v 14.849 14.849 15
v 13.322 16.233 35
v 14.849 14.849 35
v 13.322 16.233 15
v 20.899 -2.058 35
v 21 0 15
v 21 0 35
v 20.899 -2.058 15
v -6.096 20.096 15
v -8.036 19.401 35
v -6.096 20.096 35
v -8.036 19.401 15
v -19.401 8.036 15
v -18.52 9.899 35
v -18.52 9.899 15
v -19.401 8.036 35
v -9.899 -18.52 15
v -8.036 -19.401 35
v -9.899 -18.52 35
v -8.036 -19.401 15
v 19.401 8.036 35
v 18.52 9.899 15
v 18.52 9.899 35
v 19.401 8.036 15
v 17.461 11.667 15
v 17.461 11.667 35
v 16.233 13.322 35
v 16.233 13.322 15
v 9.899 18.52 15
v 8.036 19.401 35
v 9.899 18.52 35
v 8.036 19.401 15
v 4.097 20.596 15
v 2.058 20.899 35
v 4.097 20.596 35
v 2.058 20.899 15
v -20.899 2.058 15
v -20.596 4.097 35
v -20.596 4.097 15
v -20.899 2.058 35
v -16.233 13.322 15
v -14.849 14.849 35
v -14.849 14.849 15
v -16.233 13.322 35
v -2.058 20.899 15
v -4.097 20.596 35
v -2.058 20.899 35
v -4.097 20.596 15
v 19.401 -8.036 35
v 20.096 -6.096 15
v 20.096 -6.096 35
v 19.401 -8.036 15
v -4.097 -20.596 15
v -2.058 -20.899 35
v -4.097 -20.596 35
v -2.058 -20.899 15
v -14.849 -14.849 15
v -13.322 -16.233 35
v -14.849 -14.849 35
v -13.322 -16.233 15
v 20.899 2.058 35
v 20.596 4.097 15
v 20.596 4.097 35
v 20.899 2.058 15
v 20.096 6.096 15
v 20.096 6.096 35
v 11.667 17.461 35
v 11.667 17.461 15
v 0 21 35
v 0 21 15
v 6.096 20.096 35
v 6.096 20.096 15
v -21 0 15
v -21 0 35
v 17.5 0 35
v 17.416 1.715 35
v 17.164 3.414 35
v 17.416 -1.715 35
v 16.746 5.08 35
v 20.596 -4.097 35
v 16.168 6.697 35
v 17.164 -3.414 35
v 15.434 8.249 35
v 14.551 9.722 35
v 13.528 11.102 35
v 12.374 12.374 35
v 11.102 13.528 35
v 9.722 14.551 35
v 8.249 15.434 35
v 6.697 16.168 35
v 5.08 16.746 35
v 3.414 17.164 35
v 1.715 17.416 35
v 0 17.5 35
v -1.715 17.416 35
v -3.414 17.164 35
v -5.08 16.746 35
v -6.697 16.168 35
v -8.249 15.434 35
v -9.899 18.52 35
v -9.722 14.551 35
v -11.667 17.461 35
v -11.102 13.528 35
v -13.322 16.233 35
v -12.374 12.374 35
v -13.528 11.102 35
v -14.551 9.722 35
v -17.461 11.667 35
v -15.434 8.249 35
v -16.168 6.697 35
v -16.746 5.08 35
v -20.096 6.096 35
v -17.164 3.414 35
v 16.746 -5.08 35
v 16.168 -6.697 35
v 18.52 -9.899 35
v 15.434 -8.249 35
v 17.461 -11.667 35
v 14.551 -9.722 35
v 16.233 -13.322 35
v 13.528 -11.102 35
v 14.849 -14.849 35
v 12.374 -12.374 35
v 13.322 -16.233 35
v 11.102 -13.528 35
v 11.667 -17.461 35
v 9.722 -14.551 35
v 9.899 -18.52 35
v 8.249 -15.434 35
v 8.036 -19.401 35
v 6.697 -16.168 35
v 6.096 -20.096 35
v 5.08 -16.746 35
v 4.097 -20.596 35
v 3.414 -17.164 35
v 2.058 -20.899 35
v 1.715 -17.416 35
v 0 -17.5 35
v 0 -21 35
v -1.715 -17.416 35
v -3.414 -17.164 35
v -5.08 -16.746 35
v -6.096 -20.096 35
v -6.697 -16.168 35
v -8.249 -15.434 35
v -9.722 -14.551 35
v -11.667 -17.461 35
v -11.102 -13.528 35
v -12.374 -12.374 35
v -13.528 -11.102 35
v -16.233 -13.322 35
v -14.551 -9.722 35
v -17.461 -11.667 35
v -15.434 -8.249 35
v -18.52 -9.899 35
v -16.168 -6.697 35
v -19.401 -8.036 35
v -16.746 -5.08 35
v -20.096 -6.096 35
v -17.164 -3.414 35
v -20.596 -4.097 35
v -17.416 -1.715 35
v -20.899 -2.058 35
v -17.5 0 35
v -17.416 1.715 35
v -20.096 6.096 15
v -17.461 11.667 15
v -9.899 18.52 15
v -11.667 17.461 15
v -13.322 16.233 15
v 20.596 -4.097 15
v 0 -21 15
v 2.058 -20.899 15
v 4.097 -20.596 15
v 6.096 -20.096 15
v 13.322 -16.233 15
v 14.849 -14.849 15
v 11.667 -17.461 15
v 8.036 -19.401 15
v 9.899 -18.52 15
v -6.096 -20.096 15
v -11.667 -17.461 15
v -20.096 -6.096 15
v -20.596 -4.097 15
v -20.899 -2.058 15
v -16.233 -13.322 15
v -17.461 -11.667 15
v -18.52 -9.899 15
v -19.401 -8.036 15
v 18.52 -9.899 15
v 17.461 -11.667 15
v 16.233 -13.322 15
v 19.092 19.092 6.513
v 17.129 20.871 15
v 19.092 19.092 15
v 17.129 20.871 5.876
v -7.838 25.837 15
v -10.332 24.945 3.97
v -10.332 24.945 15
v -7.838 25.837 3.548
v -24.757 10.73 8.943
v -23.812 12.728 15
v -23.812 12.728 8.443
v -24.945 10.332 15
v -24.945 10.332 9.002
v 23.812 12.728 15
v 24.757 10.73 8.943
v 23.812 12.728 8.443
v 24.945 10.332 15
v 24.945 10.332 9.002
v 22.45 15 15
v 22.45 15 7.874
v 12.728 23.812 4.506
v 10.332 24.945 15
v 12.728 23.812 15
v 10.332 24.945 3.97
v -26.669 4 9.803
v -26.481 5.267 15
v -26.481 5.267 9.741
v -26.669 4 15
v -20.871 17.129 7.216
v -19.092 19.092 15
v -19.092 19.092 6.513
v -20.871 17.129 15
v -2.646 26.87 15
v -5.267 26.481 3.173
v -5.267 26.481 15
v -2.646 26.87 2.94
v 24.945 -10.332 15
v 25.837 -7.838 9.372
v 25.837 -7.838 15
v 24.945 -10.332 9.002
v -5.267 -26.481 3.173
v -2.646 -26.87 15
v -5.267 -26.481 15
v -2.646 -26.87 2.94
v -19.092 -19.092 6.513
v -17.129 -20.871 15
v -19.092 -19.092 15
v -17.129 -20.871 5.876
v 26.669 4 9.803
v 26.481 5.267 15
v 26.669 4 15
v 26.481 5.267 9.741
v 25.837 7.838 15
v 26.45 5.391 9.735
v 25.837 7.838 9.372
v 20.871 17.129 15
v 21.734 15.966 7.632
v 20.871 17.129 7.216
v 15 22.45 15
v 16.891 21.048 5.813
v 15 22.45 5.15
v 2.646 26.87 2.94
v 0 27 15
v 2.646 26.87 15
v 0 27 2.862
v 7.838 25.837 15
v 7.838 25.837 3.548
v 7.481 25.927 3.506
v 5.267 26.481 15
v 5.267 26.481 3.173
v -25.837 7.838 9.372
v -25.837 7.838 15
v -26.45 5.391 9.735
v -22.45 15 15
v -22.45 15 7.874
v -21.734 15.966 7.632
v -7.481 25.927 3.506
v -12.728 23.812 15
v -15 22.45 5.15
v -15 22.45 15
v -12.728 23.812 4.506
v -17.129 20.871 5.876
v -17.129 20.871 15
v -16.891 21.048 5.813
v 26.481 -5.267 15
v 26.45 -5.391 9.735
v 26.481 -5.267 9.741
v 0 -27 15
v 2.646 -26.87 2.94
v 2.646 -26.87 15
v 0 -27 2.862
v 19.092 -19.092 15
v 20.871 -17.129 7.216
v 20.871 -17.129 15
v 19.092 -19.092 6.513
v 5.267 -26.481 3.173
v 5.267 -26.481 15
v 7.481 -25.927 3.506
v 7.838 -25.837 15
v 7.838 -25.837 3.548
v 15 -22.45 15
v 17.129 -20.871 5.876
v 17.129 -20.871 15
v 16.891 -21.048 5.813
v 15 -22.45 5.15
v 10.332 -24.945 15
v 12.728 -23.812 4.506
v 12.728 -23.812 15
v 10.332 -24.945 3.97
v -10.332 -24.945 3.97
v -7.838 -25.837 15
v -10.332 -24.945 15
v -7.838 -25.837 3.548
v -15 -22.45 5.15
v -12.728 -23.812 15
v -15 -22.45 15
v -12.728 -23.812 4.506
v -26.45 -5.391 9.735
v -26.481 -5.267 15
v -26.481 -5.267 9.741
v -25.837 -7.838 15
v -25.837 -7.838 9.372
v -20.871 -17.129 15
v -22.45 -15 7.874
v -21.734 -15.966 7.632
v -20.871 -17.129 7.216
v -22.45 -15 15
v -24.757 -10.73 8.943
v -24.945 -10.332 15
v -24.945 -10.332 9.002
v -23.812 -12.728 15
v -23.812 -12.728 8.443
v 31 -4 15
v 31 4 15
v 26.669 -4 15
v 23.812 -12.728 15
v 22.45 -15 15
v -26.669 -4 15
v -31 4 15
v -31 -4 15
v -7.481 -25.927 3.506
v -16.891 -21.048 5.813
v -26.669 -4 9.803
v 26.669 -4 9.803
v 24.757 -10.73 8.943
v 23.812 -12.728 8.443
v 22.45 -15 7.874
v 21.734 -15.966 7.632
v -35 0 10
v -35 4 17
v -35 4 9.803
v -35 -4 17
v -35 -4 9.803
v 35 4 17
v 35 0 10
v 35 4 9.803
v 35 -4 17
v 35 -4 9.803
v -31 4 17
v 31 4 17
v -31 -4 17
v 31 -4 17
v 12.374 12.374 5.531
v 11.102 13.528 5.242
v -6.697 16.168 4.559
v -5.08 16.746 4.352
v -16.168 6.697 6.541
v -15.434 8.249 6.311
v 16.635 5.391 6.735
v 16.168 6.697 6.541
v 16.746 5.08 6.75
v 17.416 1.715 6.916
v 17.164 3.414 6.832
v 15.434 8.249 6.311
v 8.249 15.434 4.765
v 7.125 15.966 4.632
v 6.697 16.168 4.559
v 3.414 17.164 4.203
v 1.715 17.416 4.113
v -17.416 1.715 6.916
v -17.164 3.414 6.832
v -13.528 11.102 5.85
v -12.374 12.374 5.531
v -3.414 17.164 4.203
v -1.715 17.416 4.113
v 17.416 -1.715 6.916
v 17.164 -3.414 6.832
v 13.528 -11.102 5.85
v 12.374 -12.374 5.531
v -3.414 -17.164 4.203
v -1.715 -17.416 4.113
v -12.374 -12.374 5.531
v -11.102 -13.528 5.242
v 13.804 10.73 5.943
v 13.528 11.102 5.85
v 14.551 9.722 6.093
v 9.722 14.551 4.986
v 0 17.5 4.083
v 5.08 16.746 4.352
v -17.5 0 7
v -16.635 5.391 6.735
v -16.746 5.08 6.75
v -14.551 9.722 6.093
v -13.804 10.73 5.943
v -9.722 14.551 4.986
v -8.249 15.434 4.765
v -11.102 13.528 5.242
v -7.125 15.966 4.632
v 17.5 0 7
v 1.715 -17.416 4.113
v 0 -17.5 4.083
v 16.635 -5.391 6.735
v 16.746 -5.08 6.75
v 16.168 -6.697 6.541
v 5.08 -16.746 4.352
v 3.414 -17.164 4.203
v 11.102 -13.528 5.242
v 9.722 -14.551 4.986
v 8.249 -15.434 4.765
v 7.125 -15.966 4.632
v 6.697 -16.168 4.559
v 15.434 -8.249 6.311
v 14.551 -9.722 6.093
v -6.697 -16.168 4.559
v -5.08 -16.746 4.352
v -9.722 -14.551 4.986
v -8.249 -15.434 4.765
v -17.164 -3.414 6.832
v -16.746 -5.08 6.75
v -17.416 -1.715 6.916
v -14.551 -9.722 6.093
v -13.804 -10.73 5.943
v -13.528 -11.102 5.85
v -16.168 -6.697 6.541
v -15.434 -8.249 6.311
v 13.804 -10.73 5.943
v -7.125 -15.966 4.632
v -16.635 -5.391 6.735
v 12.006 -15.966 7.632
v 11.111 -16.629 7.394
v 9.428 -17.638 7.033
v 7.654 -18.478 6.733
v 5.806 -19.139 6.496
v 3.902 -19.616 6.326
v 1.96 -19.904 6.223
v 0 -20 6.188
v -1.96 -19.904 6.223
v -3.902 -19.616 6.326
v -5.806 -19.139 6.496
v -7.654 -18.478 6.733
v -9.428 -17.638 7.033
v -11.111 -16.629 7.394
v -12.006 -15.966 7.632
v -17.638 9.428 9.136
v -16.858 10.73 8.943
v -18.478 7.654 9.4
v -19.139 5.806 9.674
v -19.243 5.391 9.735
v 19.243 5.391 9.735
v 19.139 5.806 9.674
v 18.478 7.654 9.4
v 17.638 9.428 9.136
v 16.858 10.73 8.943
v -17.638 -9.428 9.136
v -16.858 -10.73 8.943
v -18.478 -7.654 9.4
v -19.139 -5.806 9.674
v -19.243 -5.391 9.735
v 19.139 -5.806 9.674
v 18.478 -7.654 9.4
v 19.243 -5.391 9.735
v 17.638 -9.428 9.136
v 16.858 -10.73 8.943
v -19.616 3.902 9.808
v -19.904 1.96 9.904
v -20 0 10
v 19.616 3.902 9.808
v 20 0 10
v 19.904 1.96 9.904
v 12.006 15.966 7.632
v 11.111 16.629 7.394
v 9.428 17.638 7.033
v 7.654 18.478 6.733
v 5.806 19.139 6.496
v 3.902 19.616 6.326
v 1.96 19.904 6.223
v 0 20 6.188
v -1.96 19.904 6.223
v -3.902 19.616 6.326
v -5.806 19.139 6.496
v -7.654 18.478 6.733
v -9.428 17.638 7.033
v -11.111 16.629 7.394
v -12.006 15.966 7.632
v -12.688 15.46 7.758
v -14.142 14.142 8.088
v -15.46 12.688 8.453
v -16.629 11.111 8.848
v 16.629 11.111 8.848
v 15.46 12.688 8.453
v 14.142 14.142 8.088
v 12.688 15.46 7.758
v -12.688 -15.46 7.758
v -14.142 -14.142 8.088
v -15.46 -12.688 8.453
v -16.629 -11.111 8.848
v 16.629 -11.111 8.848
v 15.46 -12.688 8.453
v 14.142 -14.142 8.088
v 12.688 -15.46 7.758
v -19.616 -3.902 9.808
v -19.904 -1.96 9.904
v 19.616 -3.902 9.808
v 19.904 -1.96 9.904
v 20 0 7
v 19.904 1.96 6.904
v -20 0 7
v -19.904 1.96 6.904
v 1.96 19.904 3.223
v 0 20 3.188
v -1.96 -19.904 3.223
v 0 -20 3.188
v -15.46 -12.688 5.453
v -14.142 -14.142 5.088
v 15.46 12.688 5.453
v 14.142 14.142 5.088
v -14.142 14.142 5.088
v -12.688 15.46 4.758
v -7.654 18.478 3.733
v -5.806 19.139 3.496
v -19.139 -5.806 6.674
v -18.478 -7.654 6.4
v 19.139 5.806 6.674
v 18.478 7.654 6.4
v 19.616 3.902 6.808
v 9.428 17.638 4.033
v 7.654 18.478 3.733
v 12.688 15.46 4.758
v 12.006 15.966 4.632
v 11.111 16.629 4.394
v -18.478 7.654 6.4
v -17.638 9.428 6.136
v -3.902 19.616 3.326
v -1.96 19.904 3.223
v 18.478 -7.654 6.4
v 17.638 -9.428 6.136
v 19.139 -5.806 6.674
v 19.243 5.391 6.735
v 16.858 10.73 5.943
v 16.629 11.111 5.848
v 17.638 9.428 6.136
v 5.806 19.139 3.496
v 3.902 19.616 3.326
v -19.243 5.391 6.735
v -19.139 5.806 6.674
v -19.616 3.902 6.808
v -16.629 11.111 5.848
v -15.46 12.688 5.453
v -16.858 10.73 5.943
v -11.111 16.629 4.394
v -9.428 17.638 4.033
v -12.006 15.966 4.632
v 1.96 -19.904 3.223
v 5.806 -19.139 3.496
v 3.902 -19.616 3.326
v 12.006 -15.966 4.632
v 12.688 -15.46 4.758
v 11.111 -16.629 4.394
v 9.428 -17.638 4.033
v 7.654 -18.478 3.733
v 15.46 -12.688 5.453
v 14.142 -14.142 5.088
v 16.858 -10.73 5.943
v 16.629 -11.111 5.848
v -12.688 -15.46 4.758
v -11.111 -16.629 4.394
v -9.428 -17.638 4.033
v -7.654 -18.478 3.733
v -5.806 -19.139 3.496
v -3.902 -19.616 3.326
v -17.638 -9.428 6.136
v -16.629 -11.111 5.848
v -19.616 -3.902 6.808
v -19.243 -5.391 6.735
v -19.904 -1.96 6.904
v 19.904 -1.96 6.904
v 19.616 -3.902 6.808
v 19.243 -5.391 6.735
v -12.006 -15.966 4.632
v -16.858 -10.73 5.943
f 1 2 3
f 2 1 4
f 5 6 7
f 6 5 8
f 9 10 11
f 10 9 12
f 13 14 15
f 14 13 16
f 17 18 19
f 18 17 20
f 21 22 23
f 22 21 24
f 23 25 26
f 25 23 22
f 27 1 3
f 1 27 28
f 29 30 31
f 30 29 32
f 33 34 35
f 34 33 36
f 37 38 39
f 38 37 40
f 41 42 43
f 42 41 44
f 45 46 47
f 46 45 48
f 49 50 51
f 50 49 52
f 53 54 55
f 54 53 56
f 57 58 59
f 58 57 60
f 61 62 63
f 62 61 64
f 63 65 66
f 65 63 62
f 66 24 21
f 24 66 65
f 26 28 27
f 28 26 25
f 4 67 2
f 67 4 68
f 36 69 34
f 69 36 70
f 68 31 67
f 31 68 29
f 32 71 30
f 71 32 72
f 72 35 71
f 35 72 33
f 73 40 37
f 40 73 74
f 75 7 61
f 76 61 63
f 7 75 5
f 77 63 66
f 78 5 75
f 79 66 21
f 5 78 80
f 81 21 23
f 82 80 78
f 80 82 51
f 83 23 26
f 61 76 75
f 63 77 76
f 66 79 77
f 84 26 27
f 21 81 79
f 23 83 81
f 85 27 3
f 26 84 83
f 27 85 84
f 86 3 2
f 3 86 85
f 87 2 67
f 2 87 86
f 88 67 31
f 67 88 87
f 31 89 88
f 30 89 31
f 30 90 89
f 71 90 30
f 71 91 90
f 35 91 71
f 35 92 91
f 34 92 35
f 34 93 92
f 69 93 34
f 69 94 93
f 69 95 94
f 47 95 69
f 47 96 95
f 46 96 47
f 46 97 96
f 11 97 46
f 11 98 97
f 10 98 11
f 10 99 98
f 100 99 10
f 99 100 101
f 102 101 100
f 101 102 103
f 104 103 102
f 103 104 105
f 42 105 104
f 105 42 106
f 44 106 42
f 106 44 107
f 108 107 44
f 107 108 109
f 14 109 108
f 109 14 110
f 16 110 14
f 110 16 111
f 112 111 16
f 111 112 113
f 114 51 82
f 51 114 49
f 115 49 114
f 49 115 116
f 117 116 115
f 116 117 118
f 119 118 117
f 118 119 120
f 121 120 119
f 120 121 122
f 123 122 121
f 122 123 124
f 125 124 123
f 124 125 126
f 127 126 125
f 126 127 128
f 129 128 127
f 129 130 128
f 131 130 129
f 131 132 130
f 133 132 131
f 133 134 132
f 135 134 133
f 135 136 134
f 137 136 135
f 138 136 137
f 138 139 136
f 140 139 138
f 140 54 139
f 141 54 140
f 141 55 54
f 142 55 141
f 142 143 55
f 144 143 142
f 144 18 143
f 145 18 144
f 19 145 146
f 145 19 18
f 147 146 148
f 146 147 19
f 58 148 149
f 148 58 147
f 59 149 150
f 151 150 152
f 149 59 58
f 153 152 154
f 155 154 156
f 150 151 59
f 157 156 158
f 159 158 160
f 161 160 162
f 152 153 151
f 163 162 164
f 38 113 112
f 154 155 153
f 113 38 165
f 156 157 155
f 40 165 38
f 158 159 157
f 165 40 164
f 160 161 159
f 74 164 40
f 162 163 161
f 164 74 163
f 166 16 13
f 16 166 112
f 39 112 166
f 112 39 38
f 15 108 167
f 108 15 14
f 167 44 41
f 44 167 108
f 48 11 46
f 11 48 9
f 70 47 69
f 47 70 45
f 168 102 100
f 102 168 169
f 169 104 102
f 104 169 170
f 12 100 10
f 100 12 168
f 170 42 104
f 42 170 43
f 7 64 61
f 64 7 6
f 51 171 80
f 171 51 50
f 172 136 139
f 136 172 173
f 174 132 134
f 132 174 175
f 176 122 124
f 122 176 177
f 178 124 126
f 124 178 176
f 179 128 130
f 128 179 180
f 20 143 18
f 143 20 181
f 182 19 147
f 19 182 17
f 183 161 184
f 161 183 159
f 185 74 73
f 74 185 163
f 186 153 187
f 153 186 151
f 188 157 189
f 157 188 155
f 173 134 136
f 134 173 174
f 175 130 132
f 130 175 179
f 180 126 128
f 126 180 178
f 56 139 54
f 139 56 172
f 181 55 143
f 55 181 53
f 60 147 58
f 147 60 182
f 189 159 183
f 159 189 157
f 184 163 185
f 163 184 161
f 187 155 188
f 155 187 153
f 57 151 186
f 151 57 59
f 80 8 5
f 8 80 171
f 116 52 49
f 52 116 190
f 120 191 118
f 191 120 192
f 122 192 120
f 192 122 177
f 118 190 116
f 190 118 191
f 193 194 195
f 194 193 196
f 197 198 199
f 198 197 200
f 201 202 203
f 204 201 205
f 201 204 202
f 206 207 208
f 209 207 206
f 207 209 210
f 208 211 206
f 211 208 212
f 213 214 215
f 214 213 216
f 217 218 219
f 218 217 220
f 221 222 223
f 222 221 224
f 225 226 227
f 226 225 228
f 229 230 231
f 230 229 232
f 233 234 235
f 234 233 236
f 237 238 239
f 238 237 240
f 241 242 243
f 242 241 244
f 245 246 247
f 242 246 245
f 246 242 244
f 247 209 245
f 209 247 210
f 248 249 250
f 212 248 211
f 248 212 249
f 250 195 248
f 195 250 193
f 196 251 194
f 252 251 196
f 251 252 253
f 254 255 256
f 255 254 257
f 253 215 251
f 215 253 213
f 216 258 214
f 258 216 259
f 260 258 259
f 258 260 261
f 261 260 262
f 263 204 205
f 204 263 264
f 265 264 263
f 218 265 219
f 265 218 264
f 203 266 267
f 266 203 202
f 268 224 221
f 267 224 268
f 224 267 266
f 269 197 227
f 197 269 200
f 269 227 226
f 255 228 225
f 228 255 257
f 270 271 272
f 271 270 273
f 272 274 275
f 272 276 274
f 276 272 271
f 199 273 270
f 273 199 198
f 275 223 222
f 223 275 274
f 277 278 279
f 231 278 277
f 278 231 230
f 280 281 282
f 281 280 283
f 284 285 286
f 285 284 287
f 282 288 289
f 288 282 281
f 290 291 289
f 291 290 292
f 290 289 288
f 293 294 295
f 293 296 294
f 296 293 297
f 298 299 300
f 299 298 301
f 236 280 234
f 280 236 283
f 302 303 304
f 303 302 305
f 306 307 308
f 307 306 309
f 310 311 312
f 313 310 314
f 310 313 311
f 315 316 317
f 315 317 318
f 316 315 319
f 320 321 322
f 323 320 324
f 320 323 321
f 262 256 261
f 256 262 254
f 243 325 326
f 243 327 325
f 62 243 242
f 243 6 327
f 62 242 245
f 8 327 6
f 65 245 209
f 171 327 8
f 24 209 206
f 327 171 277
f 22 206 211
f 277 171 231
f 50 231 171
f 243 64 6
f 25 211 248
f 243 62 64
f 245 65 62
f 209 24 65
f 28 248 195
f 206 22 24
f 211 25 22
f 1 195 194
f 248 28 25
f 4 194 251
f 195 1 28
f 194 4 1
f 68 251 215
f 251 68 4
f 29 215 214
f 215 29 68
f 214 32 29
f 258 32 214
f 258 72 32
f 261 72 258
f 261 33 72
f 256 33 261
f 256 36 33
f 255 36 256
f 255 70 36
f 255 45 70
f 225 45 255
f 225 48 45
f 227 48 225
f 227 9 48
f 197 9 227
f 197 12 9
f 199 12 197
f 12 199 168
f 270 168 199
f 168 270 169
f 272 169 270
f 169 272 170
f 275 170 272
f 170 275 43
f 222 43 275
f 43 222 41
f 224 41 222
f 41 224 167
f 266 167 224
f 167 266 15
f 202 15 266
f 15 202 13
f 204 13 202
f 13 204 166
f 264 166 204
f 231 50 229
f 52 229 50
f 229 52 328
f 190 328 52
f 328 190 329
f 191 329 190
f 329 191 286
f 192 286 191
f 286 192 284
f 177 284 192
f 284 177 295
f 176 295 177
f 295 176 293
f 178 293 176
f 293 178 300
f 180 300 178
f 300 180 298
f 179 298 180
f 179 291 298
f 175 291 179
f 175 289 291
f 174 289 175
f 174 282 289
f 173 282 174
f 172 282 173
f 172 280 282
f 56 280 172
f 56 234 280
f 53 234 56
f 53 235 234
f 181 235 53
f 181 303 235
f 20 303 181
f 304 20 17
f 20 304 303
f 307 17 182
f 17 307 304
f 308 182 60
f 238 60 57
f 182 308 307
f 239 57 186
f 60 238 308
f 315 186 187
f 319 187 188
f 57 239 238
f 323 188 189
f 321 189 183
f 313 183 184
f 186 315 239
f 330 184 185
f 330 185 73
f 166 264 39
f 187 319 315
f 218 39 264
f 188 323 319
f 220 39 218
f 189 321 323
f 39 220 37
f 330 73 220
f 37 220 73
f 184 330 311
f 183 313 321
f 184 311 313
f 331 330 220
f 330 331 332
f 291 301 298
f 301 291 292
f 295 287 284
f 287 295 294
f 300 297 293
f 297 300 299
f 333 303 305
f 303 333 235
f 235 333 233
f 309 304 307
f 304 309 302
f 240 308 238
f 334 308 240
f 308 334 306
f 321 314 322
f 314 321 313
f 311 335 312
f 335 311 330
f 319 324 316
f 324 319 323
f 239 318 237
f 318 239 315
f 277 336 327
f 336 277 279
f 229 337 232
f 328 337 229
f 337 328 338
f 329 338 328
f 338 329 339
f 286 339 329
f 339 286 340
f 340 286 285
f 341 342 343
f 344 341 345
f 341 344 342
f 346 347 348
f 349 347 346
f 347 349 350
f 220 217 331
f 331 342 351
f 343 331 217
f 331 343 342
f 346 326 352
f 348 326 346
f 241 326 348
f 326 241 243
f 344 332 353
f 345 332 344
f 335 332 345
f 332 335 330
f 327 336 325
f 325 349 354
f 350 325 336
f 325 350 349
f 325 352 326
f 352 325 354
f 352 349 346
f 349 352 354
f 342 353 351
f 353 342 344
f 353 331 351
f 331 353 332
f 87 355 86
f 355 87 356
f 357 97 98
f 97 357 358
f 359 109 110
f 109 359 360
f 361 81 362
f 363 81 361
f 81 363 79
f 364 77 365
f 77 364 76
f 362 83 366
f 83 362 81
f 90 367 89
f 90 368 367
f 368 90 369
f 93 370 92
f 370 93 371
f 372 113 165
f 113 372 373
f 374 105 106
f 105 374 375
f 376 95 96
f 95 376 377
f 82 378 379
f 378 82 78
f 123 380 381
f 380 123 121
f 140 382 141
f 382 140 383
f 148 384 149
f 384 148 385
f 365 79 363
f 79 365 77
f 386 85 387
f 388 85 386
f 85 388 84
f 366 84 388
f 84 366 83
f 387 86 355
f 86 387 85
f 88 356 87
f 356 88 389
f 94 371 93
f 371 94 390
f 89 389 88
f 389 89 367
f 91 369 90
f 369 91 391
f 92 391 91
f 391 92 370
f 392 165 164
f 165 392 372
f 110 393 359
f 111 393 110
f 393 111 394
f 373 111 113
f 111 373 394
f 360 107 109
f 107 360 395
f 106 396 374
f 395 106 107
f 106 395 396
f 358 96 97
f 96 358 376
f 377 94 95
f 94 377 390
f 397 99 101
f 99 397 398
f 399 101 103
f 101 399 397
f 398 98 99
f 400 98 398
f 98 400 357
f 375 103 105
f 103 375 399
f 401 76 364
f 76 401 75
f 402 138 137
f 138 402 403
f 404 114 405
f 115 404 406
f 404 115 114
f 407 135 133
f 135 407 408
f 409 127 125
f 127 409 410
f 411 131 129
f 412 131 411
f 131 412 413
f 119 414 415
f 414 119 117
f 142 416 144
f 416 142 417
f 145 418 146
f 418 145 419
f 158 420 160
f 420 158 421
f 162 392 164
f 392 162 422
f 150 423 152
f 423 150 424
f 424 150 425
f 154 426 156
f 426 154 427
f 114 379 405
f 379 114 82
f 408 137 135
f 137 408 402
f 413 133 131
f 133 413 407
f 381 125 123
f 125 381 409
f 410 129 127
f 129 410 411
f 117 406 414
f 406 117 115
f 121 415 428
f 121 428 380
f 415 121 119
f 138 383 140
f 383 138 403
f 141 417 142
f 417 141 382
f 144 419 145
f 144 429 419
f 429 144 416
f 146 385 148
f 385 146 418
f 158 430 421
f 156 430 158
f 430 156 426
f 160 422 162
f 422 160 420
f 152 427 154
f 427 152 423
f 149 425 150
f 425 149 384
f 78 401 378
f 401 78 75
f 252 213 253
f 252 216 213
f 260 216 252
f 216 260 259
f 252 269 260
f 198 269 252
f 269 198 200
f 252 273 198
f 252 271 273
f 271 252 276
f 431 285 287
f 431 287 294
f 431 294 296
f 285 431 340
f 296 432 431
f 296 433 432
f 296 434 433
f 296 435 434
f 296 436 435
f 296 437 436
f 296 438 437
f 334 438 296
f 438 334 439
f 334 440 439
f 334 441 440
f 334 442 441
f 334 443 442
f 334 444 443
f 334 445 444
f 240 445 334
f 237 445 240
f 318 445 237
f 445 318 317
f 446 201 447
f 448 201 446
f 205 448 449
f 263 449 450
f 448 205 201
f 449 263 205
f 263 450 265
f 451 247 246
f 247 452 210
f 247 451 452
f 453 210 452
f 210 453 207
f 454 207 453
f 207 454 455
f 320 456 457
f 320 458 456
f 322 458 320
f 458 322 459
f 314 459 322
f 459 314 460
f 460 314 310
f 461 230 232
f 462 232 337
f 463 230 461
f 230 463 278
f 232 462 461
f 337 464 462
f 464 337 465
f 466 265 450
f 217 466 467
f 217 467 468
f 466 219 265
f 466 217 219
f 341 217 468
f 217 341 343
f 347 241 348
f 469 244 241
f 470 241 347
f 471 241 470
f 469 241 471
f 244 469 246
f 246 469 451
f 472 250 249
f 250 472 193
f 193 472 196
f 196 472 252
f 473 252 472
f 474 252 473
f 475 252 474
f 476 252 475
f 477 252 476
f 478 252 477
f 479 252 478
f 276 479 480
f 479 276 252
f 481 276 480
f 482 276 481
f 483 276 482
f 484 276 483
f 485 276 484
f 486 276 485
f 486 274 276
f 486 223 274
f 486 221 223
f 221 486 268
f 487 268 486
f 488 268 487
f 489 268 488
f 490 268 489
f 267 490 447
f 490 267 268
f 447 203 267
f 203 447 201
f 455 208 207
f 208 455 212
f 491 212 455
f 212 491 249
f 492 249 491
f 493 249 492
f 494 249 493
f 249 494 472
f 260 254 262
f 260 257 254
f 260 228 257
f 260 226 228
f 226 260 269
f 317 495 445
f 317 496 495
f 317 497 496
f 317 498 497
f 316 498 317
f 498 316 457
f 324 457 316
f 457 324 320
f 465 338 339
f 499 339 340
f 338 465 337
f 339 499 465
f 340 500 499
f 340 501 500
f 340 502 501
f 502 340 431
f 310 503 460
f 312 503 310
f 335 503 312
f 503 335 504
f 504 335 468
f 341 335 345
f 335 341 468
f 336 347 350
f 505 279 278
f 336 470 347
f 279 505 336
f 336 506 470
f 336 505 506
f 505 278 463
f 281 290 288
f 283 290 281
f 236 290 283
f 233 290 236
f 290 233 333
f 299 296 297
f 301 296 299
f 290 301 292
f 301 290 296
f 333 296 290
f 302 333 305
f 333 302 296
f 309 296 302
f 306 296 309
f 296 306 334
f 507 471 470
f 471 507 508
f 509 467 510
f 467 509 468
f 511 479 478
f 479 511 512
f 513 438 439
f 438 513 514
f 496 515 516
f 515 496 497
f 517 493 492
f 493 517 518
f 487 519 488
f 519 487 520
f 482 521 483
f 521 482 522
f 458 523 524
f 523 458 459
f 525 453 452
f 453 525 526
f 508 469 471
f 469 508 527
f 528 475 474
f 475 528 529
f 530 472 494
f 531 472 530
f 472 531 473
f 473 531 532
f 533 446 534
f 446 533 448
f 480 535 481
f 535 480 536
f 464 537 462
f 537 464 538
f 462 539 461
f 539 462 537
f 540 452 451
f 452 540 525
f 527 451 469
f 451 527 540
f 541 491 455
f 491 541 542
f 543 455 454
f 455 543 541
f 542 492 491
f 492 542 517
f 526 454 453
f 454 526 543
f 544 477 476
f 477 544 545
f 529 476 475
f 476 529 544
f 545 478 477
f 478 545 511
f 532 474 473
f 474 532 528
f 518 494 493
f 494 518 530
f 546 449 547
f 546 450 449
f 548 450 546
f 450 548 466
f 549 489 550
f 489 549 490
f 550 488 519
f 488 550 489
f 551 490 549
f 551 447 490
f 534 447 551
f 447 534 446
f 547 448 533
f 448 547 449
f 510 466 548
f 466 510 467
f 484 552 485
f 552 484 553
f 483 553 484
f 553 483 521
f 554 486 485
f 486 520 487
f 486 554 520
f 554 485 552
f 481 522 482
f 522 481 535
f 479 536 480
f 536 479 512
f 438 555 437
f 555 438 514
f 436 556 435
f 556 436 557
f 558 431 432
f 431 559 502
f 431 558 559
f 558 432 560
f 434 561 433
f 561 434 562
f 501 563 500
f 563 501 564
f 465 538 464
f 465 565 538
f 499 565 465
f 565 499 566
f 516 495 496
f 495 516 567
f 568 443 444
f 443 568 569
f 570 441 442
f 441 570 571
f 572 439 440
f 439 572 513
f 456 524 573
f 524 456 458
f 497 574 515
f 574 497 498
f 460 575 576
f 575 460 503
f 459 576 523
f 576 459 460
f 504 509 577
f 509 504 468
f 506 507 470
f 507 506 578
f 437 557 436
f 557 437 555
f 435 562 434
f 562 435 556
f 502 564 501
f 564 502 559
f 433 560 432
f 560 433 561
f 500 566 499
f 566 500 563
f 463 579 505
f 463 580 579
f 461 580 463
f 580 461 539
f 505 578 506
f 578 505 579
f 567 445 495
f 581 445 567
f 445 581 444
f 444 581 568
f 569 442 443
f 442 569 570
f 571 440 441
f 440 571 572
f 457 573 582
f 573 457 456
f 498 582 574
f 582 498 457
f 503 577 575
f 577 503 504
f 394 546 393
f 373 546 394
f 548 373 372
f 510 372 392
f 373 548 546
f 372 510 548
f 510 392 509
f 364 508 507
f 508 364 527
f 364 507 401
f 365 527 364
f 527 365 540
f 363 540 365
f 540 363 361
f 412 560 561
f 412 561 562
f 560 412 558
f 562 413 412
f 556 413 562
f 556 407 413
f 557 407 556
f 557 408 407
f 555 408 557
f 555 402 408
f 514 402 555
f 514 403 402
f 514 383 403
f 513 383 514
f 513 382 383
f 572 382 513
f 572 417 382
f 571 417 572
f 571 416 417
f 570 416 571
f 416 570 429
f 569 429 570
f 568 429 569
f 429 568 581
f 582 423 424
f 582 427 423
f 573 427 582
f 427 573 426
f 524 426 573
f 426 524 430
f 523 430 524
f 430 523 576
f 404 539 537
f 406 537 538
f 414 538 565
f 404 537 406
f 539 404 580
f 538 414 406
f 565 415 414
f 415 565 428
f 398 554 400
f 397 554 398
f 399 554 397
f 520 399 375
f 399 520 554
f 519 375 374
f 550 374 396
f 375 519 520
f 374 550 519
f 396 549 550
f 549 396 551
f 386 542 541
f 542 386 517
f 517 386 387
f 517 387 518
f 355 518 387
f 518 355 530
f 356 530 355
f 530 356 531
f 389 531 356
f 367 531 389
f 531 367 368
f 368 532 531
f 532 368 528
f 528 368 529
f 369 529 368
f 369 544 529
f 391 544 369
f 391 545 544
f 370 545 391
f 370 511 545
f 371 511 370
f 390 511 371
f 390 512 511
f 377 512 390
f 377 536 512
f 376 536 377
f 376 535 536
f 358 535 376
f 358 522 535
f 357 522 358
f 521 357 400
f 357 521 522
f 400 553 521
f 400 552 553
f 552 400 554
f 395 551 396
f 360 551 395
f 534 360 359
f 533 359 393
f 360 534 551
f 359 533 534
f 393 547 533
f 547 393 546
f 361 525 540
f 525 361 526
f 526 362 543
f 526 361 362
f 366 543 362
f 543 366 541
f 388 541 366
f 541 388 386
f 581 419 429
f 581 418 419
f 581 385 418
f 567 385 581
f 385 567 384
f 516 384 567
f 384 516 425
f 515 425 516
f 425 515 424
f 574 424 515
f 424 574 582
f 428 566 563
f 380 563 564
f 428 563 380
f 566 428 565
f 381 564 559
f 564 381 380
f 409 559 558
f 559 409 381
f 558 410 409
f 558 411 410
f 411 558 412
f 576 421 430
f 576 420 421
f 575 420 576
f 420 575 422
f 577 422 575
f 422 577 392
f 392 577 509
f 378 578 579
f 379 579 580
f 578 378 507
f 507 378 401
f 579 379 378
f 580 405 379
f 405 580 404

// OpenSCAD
// Definition size of housing
// **************************

length =140;
width      = 75;    
height      = 10;     
studheight    = 10;

cutoutlength = 110;
cutoutwidth = 52;

flangewidth = 22;
flangeheight = 4;



//Definition of circle angular resolution
resol        = 64;           // Identical to housing !!!



difference () {
    
    union() {

        translate ([0,0,0]) cylinder (h=35, r=21, $fn=resol);
        translate ([0,0,0]) cylinder (h=15, r=27, $fn=resol);
        translate ([0,0,0]) cube ([70,8,30], center=true);
        translate ([33,0,15]) cube ([4,8,4], center=true);
        translate ([-33,0,15]) cube ([4,8,4], center=true);

    }

    translate ([0,0,0]) cylinder (h=40, r=17.5, $fn=resol); //hole for pipe - 34.5mm od

    translate ([-50,0,-45]) rotate ([0,90,0]) cylinder (h=100, r=55, $fn=resol); //boss


}

difference () {

    translate ([0,0,0]) cylinder (h=15, r=20, $fn=resol); //into pipe - saw hole size
    translate ([0,0,0]) cylinder (h=16, r=17.5, $fn=resol); //hole for pipe - 32mm od

    translate ([-50,0,-48]) rotate ([0,90,0]) cylinder (h=100, r=55, $fn=resol); //boss


}
